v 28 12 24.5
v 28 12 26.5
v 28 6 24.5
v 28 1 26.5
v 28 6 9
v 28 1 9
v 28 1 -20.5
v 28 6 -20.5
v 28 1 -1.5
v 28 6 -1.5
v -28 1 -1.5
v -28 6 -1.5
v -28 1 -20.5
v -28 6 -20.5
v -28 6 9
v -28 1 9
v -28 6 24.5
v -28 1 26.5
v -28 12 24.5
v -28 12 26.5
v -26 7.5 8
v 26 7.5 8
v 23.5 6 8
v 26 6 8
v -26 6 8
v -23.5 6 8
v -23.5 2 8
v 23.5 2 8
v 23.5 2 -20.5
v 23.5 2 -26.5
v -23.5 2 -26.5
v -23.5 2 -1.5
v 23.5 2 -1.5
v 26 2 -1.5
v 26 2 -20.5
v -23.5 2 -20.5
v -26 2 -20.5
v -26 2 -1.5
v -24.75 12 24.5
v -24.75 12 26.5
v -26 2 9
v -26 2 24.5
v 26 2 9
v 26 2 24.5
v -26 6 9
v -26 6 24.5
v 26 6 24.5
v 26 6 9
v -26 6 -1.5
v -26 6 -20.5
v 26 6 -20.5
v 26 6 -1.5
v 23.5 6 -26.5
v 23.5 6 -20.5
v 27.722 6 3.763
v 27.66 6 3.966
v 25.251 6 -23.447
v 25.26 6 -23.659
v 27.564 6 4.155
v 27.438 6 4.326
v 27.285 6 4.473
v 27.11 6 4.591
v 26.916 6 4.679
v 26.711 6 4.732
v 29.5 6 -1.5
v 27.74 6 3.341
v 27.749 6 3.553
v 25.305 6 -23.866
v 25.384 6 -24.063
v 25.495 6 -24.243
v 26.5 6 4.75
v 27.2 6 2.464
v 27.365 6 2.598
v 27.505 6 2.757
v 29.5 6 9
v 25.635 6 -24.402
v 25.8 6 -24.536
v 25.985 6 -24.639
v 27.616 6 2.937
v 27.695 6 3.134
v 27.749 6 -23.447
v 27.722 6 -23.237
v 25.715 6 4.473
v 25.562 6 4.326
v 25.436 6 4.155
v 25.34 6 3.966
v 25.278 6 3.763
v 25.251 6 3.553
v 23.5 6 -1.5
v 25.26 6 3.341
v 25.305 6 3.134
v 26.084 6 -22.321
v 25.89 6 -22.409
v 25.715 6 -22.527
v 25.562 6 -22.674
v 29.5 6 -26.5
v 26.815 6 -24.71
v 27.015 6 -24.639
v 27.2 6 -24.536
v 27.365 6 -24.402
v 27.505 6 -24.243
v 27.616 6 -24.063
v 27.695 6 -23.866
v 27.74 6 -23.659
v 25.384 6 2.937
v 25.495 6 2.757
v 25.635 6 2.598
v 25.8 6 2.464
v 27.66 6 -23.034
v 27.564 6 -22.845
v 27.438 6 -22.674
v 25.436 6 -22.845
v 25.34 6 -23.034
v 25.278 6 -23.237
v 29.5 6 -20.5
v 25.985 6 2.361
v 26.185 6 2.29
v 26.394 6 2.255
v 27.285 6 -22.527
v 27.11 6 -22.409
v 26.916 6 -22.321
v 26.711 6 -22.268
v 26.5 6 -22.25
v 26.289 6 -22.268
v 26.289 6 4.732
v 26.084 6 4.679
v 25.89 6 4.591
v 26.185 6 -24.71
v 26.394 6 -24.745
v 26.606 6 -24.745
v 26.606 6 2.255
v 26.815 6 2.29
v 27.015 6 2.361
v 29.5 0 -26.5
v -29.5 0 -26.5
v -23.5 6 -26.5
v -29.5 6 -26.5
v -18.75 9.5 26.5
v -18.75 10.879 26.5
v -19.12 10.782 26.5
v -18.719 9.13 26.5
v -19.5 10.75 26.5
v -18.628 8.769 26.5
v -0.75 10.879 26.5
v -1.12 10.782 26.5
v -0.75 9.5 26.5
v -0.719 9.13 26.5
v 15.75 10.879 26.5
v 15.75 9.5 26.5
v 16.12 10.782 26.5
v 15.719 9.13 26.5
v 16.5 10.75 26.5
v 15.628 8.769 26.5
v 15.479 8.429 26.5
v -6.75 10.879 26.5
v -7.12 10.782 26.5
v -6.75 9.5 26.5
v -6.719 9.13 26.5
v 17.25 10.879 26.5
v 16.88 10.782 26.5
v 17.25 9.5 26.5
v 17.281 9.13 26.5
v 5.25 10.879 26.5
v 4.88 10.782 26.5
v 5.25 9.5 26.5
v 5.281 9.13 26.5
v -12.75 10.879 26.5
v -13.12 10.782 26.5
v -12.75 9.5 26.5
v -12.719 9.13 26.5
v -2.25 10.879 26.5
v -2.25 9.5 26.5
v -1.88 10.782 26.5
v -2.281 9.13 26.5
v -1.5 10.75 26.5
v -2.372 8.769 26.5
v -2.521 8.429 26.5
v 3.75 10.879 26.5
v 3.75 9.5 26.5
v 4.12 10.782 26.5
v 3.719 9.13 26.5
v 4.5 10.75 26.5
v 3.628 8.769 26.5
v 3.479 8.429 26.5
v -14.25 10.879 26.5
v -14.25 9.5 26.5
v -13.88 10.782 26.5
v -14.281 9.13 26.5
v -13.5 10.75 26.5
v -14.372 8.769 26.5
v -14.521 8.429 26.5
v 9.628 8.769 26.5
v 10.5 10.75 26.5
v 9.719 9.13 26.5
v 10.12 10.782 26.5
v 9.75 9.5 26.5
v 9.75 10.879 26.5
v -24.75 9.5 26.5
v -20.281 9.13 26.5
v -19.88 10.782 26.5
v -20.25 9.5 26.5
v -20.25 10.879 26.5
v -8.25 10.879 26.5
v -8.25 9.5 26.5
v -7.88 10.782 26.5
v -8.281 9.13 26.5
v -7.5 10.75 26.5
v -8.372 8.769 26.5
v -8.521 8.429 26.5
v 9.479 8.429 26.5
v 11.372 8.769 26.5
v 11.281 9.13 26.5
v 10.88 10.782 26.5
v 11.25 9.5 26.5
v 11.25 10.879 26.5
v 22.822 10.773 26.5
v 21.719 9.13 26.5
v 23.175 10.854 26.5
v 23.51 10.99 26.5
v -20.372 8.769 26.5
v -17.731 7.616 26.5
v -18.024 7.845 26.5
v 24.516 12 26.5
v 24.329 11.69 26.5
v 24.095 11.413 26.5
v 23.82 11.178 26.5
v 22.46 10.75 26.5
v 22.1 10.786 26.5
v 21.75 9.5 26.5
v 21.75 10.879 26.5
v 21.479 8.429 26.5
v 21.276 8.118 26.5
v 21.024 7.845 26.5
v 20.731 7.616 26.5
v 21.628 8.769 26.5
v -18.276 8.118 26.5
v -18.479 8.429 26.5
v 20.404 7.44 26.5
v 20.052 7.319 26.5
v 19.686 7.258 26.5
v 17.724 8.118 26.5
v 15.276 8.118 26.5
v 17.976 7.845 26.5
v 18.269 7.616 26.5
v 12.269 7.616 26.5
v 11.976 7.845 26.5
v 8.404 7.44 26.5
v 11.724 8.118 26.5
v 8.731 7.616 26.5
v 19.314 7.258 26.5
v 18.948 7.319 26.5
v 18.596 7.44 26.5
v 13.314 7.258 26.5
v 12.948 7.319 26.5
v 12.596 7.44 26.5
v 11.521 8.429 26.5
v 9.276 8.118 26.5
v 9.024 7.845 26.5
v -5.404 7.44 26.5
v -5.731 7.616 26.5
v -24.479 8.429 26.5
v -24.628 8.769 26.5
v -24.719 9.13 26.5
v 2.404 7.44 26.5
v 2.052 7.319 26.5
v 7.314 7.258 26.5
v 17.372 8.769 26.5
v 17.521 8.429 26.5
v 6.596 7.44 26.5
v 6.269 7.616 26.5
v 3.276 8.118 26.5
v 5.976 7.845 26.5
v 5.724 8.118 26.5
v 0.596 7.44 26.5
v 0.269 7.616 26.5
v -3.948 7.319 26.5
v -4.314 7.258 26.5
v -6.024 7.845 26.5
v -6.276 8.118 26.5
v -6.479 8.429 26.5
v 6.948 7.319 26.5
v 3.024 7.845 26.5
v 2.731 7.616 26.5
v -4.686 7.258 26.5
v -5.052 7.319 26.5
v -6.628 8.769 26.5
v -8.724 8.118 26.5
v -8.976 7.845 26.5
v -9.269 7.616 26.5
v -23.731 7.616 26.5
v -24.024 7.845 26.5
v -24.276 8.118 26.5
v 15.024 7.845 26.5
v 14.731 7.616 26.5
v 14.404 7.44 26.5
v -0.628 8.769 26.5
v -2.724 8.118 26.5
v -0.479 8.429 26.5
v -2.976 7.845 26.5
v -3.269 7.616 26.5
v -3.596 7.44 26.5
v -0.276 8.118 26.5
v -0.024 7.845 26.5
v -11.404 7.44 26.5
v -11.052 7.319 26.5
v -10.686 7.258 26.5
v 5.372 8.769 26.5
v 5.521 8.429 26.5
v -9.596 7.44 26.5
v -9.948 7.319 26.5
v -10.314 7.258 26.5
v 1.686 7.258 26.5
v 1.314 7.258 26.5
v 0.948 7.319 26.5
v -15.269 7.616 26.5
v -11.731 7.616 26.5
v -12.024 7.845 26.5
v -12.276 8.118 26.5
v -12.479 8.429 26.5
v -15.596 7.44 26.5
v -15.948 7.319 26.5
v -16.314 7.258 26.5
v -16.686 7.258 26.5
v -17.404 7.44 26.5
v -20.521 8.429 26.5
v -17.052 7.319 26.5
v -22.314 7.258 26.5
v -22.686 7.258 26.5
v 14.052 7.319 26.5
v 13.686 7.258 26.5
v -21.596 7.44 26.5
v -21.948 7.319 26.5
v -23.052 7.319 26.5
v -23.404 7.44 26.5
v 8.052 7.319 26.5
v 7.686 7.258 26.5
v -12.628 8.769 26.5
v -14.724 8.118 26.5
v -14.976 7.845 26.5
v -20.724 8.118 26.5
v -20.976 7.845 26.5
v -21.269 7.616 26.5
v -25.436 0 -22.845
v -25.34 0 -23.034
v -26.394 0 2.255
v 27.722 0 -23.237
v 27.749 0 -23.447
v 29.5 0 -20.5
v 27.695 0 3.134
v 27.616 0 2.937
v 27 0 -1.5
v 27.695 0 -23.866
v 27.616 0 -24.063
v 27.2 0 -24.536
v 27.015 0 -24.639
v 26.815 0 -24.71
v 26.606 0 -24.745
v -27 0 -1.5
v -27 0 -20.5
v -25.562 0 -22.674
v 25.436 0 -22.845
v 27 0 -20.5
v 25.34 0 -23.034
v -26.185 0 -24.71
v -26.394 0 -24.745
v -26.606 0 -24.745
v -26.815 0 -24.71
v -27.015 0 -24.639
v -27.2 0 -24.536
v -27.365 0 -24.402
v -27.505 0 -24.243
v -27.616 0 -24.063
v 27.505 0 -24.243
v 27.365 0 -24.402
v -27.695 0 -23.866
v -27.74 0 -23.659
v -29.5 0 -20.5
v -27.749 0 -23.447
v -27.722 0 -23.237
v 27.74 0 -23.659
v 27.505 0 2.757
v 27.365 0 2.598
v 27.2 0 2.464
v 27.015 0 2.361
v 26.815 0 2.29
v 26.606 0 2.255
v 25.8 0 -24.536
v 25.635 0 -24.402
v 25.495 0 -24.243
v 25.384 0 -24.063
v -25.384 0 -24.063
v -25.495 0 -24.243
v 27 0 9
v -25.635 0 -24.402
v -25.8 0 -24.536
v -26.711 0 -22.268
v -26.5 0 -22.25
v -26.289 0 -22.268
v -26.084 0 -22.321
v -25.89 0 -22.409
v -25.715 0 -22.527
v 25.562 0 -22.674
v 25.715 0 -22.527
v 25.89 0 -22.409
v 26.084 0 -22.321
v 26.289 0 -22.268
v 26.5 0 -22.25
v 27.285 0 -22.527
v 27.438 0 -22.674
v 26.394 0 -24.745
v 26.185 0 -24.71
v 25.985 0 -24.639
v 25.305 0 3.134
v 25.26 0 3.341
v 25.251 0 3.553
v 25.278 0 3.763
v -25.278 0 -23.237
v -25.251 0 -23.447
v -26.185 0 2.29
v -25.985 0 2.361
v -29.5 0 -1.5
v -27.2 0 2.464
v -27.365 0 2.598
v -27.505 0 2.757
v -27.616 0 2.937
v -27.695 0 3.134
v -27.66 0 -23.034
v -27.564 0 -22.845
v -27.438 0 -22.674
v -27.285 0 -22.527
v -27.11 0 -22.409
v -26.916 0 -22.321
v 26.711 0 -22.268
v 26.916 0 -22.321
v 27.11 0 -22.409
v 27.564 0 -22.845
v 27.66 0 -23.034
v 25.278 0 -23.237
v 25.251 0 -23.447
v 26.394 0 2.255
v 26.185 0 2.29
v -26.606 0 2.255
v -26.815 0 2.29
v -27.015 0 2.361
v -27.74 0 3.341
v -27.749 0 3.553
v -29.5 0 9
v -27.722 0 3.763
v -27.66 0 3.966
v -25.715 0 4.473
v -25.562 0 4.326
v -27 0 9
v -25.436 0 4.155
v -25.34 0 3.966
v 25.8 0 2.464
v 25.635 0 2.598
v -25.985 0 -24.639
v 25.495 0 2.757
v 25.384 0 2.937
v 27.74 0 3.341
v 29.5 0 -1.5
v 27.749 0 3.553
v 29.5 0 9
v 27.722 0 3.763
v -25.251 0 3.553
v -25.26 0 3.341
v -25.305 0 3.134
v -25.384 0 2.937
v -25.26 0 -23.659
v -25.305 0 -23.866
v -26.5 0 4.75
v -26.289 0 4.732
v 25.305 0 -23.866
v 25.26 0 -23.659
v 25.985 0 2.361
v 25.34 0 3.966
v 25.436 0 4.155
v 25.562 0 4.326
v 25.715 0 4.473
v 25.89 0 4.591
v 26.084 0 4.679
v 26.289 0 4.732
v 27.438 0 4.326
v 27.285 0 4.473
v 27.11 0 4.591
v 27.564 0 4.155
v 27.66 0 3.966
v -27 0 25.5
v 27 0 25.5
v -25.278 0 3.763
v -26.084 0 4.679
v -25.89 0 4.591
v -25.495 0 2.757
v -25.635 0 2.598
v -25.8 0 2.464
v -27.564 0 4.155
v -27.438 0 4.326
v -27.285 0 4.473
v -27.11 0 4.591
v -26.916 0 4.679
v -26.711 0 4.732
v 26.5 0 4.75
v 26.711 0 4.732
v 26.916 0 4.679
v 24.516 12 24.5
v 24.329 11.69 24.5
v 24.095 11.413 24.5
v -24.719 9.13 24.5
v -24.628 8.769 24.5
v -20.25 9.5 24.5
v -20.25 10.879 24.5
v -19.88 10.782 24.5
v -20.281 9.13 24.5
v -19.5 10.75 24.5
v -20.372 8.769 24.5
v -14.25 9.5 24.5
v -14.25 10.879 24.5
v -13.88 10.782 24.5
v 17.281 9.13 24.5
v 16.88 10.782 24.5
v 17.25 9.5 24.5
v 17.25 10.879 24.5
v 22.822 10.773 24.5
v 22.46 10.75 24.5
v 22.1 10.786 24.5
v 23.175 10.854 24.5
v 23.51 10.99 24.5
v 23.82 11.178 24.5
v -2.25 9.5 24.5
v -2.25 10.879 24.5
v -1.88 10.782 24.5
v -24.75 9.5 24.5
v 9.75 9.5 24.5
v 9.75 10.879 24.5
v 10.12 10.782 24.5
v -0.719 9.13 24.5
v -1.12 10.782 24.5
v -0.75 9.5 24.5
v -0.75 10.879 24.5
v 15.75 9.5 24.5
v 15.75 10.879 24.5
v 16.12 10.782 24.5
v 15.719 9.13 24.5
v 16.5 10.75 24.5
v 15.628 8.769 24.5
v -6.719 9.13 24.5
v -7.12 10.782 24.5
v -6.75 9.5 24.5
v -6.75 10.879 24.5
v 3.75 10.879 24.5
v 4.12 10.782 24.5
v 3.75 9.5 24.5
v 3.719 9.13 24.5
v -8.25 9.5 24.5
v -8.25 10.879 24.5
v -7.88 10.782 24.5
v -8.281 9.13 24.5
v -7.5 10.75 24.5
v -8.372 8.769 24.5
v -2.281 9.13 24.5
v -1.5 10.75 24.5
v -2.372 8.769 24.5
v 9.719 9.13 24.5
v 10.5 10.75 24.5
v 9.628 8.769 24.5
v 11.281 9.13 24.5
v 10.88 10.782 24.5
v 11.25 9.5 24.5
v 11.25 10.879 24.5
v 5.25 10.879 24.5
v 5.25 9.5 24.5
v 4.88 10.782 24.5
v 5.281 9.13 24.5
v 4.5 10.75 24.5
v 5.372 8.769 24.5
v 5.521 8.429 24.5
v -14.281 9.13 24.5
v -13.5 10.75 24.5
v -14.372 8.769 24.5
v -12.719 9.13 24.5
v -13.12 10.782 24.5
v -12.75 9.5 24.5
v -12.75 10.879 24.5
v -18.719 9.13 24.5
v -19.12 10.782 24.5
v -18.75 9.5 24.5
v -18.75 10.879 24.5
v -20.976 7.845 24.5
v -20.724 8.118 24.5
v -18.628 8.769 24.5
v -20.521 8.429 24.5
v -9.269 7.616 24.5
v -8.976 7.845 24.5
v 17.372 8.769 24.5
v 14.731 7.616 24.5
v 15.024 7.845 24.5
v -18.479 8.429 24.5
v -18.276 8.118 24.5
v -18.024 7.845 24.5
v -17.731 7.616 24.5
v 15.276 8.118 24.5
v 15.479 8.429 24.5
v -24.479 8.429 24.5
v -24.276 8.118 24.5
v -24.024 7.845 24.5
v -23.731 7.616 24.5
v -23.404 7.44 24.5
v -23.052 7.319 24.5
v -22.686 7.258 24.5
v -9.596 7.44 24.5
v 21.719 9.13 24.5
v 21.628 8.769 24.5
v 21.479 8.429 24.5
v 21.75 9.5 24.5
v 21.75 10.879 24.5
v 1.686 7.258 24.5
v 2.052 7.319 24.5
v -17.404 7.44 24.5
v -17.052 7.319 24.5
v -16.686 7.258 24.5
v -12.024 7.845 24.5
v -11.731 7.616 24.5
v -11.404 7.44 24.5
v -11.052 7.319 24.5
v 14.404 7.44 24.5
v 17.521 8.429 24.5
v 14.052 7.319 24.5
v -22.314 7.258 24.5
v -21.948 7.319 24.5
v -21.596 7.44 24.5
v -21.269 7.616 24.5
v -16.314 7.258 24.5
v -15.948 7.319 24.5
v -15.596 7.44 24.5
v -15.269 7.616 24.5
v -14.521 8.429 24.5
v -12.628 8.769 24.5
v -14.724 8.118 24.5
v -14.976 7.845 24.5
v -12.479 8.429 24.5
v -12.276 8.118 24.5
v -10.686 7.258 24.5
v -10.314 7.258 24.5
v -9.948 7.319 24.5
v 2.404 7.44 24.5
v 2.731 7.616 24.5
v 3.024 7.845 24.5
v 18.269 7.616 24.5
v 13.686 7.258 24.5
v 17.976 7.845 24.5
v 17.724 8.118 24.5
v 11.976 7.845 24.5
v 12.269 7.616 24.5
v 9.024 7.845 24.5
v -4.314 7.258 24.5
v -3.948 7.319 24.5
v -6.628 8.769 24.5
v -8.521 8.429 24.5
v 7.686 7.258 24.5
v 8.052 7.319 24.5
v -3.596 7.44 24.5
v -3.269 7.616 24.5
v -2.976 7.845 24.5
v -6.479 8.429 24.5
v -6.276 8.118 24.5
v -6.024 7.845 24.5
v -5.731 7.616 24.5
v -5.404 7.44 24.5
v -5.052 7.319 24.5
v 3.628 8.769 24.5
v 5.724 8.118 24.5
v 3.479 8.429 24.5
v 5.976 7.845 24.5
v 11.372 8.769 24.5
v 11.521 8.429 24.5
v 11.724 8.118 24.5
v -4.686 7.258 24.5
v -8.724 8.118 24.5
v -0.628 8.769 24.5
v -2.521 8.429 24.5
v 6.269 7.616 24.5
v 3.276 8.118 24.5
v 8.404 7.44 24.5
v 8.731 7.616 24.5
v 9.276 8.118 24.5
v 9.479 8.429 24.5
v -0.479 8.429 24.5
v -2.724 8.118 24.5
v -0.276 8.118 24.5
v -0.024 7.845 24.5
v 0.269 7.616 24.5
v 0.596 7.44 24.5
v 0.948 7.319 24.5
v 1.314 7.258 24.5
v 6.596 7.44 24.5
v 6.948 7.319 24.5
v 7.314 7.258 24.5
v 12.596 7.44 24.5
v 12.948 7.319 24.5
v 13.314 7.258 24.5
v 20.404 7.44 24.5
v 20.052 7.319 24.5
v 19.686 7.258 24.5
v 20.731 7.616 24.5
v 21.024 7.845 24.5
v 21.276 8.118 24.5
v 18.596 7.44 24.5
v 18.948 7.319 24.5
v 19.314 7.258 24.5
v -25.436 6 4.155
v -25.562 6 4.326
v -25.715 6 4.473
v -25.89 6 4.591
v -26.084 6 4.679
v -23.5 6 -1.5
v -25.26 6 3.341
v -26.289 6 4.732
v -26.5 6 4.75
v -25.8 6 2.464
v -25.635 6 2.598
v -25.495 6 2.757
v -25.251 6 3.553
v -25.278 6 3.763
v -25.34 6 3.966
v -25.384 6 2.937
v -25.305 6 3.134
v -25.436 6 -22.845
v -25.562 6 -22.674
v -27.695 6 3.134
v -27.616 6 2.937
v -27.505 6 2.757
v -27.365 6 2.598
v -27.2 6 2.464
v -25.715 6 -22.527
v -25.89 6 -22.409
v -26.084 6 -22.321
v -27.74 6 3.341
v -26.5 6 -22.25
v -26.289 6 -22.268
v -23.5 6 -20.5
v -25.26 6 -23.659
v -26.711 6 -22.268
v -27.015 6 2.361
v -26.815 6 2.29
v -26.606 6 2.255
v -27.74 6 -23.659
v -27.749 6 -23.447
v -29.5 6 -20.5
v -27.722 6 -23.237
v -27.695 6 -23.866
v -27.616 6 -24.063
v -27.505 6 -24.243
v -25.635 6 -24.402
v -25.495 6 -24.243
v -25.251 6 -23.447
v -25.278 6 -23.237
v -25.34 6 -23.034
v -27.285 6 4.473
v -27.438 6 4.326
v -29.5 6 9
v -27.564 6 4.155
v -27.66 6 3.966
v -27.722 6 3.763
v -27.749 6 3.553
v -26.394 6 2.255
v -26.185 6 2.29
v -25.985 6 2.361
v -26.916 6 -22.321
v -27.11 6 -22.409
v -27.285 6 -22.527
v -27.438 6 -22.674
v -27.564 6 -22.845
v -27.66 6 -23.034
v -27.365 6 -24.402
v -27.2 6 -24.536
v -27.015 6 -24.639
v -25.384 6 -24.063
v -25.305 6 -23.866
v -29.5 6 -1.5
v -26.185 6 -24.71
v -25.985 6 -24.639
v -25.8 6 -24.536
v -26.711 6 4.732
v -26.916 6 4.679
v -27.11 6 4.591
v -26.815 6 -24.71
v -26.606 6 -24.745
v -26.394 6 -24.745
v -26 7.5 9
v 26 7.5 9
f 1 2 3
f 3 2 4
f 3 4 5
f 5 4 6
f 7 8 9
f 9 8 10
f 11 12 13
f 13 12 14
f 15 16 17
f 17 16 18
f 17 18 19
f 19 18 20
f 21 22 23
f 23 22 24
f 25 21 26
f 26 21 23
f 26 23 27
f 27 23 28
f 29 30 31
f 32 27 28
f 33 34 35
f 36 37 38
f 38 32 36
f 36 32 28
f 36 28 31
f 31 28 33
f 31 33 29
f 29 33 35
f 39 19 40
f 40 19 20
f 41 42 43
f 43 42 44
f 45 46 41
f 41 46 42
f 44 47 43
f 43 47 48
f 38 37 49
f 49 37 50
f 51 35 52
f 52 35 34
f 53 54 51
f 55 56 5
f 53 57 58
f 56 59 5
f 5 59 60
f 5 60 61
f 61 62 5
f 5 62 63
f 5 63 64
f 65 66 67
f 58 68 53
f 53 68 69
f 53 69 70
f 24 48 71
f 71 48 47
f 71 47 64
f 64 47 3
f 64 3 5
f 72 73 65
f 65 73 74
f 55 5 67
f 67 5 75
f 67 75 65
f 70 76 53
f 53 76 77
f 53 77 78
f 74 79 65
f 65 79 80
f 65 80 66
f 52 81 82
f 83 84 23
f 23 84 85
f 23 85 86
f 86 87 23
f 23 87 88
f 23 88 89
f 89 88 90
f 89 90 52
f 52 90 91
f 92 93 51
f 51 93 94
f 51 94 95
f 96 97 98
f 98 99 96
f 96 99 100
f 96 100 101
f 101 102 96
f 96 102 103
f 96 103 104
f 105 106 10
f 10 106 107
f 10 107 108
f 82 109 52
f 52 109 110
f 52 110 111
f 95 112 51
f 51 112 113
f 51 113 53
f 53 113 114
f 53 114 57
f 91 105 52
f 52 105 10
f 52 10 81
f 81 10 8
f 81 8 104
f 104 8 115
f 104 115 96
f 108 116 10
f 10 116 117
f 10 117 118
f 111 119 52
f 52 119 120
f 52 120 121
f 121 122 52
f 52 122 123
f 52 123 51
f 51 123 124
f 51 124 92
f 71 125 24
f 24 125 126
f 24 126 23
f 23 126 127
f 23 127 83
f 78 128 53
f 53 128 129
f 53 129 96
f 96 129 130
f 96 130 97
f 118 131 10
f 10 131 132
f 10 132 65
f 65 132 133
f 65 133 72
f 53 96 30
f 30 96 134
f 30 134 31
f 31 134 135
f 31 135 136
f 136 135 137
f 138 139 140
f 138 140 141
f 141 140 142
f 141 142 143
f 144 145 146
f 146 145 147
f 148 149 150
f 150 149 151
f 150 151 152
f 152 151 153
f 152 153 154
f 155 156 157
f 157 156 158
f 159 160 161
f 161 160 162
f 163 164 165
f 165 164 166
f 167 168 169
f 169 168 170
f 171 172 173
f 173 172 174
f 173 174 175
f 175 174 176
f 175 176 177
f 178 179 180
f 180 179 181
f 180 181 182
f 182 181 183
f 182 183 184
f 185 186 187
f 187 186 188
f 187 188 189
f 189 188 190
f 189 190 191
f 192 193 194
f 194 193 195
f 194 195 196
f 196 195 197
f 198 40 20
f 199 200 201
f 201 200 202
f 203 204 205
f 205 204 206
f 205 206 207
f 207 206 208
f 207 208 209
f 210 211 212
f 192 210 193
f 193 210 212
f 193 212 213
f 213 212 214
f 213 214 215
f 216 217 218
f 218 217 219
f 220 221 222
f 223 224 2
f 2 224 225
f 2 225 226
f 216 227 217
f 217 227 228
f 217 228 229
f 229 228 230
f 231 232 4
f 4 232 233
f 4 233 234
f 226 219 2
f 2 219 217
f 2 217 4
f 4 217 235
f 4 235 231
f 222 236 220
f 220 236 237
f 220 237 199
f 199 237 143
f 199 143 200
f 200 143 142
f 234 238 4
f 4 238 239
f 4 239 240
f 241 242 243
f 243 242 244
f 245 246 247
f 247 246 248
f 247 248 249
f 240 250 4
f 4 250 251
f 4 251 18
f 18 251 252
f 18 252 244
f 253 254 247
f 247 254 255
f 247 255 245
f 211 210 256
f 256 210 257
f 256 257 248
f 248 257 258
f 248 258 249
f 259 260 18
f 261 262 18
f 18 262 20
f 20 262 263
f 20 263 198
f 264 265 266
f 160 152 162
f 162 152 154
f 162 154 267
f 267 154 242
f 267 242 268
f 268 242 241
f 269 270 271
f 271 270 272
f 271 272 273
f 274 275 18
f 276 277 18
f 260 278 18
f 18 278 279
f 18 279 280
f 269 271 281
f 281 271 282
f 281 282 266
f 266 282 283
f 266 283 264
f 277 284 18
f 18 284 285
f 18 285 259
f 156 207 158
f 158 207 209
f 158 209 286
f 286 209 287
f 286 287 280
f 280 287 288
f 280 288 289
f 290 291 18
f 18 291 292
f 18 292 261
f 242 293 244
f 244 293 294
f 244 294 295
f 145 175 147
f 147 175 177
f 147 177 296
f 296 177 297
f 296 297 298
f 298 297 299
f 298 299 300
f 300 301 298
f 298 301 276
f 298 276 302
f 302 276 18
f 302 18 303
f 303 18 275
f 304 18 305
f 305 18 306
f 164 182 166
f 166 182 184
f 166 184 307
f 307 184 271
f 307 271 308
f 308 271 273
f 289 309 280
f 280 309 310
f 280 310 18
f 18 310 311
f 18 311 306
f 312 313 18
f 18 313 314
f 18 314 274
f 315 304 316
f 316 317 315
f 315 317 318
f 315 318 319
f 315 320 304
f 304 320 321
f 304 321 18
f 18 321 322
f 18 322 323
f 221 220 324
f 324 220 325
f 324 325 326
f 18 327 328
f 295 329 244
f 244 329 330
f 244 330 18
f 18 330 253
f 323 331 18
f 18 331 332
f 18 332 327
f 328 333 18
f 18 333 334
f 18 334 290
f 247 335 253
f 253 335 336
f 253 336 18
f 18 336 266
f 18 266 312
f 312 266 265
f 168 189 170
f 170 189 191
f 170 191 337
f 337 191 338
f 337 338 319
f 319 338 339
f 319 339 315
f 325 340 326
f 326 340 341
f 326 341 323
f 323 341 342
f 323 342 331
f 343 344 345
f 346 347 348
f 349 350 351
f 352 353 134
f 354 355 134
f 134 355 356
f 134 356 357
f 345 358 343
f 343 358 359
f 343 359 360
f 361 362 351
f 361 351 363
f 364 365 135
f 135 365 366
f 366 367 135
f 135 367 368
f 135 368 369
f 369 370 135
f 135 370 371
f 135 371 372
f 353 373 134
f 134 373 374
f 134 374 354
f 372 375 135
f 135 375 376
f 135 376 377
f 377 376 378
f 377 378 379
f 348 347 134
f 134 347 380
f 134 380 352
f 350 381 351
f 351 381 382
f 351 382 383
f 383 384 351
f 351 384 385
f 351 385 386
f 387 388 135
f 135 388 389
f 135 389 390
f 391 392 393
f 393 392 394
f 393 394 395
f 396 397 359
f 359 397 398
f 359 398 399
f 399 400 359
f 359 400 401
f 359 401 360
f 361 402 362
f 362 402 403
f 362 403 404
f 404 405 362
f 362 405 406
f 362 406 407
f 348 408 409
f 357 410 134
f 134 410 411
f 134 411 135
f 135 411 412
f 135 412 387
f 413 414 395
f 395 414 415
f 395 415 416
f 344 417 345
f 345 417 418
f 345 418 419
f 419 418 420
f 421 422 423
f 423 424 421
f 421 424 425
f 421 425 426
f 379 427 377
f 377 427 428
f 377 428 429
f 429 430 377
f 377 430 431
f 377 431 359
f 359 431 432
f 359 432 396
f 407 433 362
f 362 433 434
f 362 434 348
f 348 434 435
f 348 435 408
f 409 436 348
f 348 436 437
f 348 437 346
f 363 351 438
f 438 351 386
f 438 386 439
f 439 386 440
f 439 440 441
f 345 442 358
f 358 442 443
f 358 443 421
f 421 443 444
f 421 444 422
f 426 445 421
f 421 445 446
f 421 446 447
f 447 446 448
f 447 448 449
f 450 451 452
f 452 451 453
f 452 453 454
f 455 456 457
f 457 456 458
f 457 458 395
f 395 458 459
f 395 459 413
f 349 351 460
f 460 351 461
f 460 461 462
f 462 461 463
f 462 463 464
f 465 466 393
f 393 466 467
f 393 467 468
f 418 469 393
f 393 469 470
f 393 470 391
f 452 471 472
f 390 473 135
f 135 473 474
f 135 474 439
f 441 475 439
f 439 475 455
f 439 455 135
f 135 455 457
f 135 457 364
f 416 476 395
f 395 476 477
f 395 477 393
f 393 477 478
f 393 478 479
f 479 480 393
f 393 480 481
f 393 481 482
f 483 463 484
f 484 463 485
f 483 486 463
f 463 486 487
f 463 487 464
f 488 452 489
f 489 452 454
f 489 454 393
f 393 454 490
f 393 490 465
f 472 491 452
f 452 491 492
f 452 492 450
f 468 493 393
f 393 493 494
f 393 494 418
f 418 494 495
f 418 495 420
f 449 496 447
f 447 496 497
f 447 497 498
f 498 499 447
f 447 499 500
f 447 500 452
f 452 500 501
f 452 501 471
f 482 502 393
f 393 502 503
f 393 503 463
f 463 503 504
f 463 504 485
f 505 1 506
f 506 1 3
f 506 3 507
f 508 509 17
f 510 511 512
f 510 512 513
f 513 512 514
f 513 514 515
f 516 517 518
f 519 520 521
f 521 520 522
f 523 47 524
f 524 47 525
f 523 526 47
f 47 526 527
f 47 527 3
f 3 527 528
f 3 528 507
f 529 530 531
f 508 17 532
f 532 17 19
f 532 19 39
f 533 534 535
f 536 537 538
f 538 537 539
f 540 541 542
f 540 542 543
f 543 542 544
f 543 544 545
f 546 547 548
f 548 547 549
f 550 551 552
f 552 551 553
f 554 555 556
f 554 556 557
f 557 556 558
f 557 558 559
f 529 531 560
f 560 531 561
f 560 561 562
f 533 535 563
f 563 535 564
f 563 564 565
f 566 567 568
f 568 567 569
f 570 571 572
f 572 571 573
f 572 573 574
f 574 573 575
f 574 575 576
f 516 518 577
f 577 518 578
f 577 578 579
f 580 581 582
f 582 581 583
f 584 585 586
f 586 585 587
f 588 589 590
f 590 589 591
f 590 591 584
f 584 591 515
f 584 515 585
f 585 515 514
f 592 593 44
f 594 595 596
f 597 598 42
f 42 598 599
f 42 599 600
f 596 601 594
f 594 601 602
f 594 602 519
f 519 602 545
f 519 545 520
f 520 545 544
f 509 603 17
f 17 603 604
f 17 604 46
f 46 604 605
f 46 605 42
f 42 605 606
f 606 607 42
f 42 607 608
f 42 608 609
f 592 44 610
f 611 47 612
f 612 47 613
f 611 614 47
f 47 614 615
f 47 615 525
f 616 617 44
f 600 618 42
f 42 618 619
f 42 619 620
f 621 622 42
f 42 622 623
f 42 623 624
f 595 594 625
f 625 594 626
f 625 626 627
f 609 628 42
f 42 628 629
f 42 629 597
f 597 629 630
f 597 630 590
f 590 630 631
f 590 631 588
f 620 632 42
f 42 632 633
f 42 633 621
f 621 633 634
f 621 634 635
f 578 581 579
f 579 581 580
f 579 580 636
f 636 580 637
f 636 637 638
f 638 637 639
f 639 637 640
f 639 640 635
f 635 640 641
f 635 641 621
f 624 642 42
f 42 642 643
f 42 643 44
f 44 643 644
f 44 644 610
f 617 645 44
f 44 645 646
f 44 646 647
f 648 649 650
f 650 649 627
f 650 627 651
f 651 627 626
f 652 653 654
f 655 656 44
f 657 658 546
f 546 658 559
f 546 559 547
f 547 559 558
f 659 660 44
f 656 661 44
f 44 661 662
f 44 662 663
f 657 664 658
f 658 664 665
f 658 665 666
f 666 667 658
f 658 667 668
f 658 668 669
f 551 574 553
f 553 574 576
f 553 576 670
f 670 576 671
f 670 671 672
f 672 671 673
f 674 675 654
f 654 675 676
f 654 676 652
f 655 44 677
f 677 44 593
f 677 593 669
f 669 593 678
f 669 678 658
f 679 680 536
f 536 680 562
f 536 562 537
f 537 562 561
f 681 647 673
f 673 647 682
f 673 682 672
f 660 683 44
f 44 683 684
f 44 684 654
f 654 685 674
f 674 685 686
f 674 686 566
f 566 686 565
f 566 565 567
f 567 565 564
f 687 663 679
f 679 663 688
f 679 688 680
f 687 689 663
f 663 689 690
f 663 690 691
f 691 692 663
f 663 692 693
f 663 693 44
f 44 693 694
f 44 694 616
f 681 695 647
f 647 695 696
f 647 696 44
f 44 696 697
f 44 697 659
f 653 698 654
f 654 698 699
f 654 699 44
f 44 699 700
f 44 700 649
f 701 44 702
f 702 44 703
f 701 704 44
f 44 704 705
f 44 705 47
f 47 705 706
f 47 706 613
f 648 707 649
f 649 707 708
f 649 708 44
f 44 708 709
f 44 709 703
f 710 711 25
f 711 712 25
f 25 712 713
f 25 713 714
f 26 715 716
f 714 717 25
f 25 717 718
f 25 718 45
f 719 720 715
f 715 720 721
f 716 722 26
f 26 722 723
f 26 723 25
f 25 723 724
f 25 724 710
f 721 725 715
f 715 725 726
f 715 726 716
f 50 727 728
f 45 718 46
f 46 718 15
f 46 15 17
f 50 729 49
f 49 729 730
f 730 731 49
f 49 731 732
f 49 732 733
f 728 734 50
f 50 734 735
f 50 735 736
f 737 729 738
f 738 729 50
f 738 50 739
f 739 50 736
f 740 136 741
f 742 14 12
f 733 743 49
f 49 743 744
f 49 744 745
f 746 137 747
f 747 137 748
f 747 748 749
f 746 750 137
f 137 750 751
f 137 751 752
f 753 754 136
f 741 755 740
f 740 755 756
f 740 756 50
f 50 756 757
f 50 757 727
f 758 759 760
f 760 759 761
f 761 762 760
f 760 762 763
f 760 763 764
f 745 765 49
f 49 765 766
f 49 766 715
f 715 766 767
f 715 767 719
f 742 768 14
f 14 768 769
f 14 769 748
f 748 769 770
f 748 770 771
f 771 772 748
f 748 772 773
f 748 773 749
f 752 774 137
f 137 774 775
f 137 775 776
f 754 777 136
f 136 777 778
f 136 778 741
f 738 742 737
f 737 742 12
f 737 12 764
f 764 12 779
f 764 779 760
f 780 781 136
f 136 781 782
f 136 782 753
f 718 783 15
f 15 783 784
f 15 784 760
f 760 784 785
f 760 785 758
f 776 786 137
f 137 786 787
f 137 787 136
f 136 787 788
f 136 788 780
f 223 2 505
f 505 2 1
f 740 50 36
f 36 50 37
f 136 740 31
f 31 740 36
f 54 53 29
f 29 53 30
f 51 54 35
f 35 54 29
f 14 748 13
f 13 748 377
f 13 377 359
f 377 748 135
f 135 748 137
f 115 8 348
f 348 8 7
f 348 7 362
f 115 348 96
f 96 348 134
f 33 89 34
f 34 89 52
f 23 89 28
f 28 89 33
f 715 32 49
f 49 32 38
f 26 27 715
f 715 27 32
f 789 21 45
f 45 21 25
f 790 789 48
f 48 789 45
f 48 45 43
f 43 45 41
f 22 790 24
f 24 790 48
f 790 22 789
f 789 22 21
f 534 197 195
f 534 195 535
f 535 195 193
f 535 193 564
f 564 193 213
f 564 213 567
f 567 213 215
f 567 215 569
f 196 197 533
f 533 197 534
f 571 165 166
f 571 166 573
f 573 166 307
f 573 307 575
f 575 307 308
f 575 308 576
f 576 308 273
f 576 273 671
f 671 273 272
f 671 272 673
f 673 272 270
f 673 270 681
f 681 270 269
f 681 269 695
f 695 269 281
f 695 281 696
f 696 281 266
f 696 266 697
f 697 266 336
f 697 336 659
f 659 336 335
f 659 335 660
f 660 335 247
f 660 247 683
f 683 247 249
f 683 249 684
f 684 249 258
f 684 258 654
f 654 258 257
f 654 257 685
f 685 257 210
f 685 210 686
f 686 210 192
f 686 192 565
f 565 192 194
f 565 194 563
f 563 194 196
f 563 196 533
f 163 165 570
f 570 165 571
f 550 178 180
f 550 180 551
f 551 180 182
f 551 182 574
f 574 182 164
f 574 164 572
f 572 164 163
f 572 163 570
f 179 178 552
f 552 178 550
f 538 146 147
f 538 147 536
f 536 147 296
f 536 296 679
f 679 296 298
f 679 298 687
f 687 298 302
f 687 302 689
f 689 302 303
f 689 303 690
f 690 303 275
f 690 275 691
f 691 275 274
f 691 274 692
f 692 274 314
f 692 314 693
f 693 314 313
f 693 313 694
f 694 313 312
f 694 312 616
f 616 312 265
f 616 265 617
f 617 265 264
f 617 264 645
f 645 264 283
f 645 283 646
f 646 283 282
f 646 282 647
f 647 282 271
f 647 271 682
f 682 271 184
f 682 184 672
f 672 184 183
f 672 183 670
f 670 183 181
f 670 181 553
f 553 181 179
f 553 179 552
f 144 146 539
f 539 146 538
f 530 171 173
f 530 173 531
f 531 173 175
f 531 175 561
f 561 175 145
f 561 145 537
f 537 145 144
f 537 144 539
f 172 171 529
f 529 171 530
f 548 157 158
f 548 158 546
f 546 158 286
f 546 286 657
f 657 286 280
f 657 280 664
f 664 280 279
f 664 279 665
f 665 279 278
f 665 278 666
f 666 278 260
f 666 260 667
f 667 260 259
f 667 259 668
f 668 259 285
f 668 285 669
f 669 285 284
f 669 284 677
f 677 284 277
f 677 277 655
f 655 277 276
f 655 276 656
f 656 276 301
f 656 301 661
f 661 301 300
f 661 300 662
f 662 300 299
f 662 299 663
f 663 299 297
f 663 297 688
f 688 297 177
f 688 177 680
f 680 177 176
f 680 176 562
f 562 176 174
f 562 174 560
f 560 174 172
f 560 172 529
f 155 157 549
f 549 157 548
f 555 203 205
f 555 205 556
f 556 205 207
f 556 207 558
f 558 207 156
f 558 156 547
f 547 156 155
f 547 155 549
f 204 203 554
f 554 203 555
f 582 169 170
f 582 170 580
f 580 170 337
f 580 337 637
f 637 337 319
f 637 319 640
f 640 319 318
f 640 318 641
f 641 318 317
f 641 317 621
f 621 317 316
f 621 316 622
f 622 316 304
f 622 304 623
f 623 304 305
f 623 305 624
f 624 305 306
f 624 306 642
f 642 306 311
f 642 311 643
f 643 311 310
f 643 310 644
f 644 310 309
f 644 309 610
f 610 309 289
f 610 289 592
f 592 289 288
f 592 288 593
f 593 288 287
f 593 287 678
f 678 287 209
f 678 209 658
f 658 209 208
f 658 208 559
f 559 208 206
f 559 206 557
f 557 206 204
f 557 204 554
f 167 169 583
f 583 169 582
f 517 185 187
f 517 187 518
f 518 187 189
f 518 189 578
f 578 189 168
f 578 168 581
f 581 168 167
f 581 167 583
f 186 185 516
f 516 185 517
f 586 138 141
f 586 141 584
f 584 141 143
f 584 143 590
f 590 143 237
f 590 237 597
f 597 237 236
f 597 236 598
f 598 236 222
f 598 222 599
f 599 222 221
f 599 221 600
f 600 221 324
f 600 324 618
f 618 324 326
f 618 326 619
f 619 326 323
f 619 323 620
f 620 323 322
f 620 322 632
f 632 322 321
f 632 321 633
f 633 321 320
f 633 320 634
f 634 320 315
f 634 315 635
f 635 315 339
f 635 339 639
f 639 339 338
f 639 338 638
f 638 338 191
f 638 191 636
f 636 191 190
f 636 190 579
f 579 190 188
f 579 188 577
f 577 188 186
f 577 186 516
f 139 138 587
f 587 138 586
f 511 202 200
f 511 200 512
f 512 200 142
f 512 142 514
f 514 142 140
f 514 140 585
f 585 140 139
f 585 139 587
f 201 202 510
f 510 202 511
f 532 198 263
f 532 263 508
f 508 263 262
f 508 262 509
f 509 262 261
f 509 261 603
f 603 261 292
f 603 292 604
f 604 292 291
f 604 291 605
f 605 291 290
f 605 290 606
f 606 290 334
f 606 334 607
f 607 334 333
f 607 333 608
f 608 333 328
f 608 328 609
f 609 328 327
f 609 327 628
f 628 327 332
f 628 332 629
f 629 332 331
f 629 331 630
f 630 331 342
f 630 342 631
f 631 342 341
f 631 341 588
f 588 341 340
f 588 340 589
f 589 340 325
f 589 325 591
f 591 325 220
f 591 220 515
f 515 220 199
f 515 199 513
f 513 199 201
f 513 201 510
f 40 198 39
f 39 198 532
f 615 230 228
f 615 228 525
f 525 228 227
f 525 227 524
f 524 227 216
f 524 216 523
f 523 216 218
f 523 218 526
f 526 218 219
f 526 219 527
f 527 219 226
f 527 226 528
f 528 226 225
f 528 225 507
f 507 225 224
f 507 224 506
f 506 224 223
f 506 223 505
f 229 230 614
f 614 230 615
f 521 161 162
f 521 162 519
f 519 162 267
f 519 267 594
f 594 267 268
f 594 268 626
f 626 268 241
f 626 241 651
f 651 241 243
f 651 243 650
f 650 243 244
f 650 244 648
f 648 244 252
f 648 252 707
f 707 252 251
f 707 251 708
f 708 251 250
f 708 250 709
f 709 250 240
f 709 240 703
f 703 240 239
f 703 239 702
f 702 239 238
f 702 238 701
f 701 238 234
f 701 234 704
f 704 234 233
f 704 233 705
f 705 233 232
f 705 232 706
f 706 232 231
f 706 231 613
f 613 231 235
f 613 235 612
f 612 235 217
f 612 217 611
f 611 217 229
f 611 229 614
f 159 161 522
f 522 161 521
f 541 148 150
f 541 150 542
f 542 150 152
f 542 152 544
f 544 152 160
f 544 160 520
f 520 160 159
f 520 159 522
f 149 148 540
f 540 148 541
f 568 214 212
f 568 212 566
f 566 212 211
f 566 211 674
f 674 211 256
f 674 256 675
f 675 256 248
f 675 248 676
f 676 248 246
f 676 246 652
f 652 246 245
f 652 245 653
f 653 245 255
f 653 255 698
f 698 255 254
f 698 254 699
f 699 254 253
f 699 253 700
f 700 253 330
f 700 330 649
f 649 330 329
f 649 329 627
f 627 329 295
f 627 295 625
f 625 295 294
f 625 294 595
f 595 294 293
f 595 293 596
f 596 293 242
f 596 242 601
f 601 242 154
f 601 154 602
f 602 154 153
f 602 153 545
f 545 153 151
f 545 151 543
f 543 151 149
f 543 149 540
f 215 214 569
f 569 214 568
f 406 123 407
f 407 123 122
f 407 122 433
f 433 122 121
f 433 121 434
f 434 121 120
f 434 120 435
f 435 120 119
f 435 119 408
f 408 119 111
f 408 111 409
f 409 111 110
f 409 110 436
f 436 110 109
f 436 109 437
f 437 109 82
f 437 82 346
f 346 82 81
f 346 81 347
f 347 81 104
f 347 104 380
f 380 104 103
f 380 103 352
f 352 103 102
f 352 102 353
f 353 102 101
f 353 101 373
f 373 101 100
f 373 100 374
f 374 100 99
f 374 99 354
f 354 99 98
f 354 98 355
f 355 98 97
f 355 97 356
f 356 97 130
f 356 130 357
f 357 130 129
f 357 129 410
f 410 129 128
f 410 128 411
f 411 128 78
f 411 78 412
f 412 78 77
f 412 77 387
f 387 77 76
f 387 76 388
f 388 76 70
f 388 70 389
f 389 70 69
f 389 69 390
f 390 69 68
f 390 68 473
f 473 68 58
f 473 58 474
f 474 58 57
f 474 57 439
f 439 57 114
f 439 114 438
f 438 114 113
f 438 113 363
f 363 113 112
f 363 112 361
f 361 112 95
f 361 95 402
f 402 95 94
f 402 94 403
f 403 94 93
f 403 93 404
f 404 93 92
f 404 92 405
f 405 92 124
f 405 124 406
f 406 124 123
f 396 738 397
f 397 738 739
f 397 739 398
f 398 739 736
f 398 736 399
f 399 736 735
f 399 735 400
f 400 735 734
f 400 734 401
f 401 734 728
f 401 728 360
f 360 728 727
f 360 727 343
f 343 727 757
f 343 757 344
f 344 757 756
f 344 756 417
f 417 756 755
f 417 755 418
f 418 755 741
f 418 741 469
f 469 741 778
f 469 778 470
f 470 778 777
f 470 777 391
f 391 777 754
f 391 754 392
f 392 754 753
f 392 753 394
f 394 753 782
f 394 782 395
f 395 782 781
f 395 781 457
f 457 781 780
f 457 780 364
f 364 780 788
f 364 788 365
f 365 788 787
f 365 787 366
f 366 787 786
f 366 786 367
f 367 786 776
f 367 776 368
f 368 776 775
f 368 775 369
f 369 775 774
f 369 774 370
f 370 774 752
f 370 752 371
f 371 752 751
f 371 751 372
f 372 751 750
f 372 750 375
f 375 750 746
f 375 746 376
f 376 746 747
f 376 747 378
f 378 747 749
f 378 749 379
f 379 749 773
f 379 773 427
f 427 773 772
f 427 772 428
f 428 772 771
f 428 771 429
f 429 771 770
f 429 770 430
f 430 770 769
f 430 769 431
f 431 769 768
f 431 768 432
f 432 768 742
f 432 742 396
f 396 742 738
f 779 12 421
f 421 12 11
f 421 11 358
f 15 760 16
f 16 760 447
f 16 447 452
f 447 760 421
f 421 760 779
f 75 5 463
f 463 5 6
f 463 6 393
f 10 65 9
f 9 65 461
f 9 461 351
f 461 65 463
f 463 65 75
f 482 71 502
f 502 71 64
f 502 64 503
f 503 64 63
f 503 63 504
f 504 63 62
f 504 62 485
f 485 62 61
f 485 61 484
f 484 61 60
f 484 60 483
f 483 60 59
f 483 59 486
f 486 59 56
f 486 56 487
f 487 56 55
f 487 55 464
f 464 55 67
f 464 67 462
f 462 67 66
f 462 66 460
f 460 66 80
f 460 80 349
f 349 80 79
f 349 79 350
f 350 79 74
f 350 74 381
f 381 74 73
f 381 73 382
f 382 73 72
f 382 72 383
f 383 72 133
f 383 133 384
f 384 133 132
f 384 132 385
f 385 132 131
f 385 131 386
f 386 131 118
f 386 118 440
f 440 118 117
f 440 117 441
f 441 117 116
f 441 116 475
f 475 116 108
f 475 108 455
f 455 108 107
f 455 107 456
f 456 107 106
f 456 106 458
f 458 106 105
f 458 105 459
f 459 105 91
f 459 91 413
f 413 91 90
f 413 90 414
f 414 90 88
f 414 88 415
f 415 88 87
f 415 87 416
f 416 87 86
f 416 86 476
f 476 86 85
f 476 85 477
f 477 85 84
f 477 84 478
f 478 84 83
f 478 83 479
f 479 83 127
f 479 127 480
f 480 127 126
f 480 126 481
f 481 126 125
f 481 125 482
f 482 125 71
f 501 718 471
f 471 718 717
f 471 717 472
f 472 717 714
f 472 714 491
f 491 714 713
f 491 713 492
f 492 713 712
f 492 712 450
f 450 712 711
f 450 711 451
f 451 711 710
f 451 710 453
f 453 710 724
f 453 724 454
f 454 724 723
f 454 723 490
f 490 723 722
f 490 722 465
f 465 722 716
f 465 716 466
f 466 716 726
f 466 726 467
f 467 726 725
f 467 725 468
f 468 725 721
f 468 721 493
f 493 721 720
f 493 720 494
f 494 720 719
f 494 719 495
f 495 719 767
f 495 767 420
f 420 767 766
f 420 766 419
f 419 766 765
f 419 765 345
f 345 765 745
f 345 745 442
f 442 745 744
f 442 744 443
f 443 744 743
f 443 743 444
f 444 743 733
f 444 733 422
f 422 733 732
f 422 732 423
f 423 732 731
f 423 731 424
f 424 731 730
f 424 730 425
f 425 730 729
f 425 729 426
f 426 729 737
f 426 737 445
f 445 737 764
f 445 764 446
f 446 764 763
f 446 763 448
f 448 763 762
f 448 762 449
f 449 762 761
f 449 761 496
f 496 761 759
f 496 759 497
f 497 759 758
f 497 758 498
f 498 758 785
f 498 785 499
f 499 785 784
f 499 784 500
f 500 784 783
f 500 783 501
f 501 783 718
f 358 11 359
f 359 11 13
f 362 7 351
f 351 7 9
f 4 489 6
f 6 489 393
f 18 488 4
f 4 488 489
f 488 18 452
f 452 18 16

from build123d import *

# Parameters (mm, degrees)
SKETCH1_W            = 56
SKETCH1_H            = 53
BOSS_EXTRUDE1_DEPTH  = 2
BOSS_EXTRUDE2_DEPTH  = 4
SKETCH3_W            = 56
SKETCH3_H            = 2
BOSS_EXTRUDE3_DEPTH  = 6
SKETCH4_W            = 2.5
SKETCH4_H            = 6
BOSS_EXTRUDE4_DEPTH  = 4
SKETCH5_W            = 2.5
SKETCH5_H            = 6
BOSS_EXTRUDE5_DEPTH  = 4
SKETCH6_W            = 6
SKETCH6_H            = 6
BOSS_EXTRUDE6_DEPTH  = 1.5
SKETCH7_W            = 6
SKETCH7_H            = 6
BOSS_EXTRUDE7_DEPTH  = 1.5
SKETCH8_W            = 2
SKETCH8_H            = 4
BOSS_EXTRUDE8_DEPTH  = 2.5
SKETCH9_W            = 2
SKETCH9_H            = 4
BOSS_EXTRUDE9_DEPTH  = 2.5
SKETCH10_W           = 52
SKETCH10_H           = 1
BOSS_EXTRUDE10_DEPTH = 5.5
CUT_EXTRUDE1_DEPTH   = 5.5
SKETCH12_R           = 1.25
CUT_EXTRUDE2_DEPTH   = 15.5
SKETCH13_R           = 1.25
CUT_EXTRUDE3_DEPTH   = 15.5
SKETCH14_W           = 8.5
SKETCH14_H           = 4
BOSS_EXTRUDE11_DEPTH = 2.5
SKETCH15_W           = 8.5
SKETCH15_H           = 4
BOSS_EXTRUDE12_DEPTH = 2.5
SKETCH16_W           = 10.5
SKETCH16_H           = 6
BOSS_EXTRUDE13_DEPTH = 1.5
SKETCH17_W           = 10.5
SKETCH17_H           = 6
BOSS_EXTRUDE14_DEPTH = 1.5
SKETCH18_R           = 1.25
CUT_EXTRUDE4_DEPTH   = 10
SKETCH19_R           = 1.25
CUT_EXTRUDE5_DEPTH   = 10
CHAMFER4_SIZE        = 1


with BuildPart() as part:
    # Sketch1 → Boss-Extrude1 (new body)
    with BuildSketch(Plane(origin=(0, 0, 0), x_dir=(1, 0, 0), z_dir=(0, 1, 0))):
        Rectangle(SKETCH1_W, SKETCH1_H)
    extrude(amount=BOSS_EXTRUDE1_DEPTH)

    # Sketch2 → Boss-Extrude2 (add)
    with BuildSketch(Plane(origin=(0, 2, 0), x_dir=(1, 0, 0), z_dir=(0, 1, 0))):
        Polygon((-26, 26.5), (-28, 26.5), (-28, -23), (-28, -26.5), (-26, -26.5), (26, -26.5), (28, -26.5), (28, -23), (28, 26.5), (26, 26.5), (26, -24.5), (-26, -24.5), align=None)
    extrude(amount=BOSS_EXTRUDE2_DEPTH)

    # Sketch3 → Boss-Extrude3 (add)
    with BuildSketch(Plane(origin=(0, 6, 0), x_dir=(1, 0, 0), z_dir=(0, 1, 0))):
        with Locations((0, -25.5)):
            Rectangle(SKETCH3_W, SKETCH3_H)
    extrude(amount=BOSS_EXTRUDE3_DEPTH)

    # Sketch4 → Boss-Extrude4 (add)
    with BuildSketch(Plane(origin=(0, 2, 0), x_dir=(1, 0, 0), z_dir=(0, 1, 0))):
        with Locations((-24.75, 23.5)):
            Rectangle(SKETCH4_W, SKETCH4_H)
    extrude(amount=BOSS_EXTRUDE4_DEPTH)

    # Sketch5 → Boss-Extrude5 (add)
    with BuildSketch(Plane(origin=(0, 2, 0), x_dir=(1, 0, 0), z_dir=(0, 1, 0))):
        with Locations((24.75, 23.5)):
            Rectangle(SKETCH5_W, SKETCH5_H)
    extrude(amount=BOSS_EXTRUDE5_DEPTH)

    # Sketch6 → Boss-Extrude6 (add)
    with BuildSketch(Plane.ZY.offset(28)):
        with Locations((-23.5, 3)):
            Rectangle(SKETCH6_W, SKETCH6_H)
    extrude(amount=BOSS_EXTRUDE6_DEPTH)

    # Sketch7 → Boss-Extrude7 (add)
    with BuildSketch(Plane(origin=(28, 0, 0), x_dir=(0, 0, -1), z_dir=(1, 0, 0))):
        with Locations((23.5, 3)):
            Rectangle(SKETCH7_W, SKETCH7_H)
    extrude(amount=BOSS_EXTRUDE7_DEPTH)

    # Sketch8 → Boss-Extrude8 (add)
    with BuildSketch(Plane.ZY.offset(-26)):
        with Locations((-0.5, 4)):
            Rectangle(SKETCH8_W, SKETCH8_H)
    extrude(amount=BOSS_EXTRUDE8_DEPTH)

    # Sketch9 → Boss-Extrude9 (add)
    with BuildSketch(Plane(origin=(-26, 0, 0), x_dir=(0, 0, -1), z_dir=(1, 0, 0))):
        with Locations((0.5, 4)):
            Rectangle(SKETCH9_W, SKETCH9_H)
    extrude(amount=BOSS_EXTRUDE9_DEPTH)

    # Sketch10 → Boss-Extrude10 (add)
    with BuildSketch(Plane(origin=(0, 2, 0), x_dir=(1, 0, 0), z_dir=(0, 1, 0))):
        with Locations((0, -8.5)):
            Rectangle(SKETCH10_W, SKETCH10_H)
    extrude(amount=BOSS_EXTRUDE10_DEPTH)

    # Sketch11 → Cut-Extrude1 (cut)
    with BuildSketch(Plane.XY.offset(26.5)):
        with BuildLine():
            Line((-24.75, 9.5), (-24.75, 12))
            Line((-24.75, 12), (24.75, 13))
            ThreePointArc((24.75, 13), (23.799038106, 11.162882693), (21.75, 10.878679656))
            Line((21.75, 10.878679656), (21.75, 9.5))
            ThreePointArc((21.75, 9.5), (19.5, 7.25), (17.25, 9.5))
            Line((17.25, 9.5), (17.25, 10.878679656))
            ThreePointArc((17.25, 10.878679656), (16.5, 10.75), (15.75, 10.878679656))
            Line((15.75, 10.878679656), (15.75, 9.5))
            ThreePointArc((15.75, 9.5), (13.5, 7.25), (11.25, 9.5))
            Line((11.25, 9.5), (11.25, 10.878679656))
            ThreePointArc((11.25, 10.878679656), (10.5, 10.75), (9.75, 10.878679656))
            Line((9.75, 10.878679656), (9.75, 9.5))
            ThreePointArc((9.75, 9.5), (7.5, 7.25), (5.25, 9.5))
            Line((5.25, 9.5), (5.25, 10.878679656))
            ThreePointArc((5.25, 10.878679656), (4.5, 10.75), (3.75, 10.878679656))
            Line((3.75, 10.878679656), (3.75, 9.5))
            ThreePointArc((3.75, 9.5), (1.5, 7.25), (-0.75, 9.5))
            Line((-0.75, 9.5), (-0.75, 10.878679656))
            ThreePointArc((-0.75, 10.878679656), (-1.5, 10.75), (-2.25, 10.878679656))
            Line((-2.25, 10.878679656), (-2.25, 9.5))
            ThreePointArc((-2.25, 9.5), (-4.5, 7.25), (-6.75, 9.5))
            Line((-6.75, 9.5), (-6.75, 10.878679656))
            ThreePointArc((-6.75, 10.878679656), (-7.5, 10.75), (-8.25, 10.878679656))
            Line((-8.25, 10.878679656), (-8.25, 9.5))
            ThreePointArc((-8.25, 9.5), (-10.5, 7.25), (-12.75, 9.5))
            Line((-12.75, 9.5), (-12.75, 10.878679656))
            ThreePointArc((-12.75, 10.878679656), (-13.5, 10.75), (-14.25, 10.878679656))
            Line((-14.25, 10.878679656), (-14.25, 9.5))
            ThreePointArc((-14.25, 9.5), (-16.5, 7.25), (-18.75, 9.5))
            Line((-18.75, 9.5), (-18.75, 10.878679656))
            ThreePointArc((-18.75, 10.878679656), (-19.5, 10.75), (-20.25, 10.878679656))
            Line((-20.25, 10.878679656), (-20.25, 9.5))
            ThreePointArc((-20.25, 9.5), (-22.5, 7.25), (-24.75, 9.5))
        make_face()
    extrude(amount=-CUT_EXTRUDE1_DEPTH, mode=Mode.SUBTRACT)

    # Sketch12 → Cut-Extrude2 (cut)
    with BuildSketch(Plane(origin=(0, 6, 0), x_dir=(1, 0, 0), z_dir=(0, 1, 0))):
        with Locations(Location((26.5, 23.5, 0), (0, 0, 270))):
            Circle(SKETCH12_R)
    extrude(amount=-CUT_EXTRUDE2_DEPTH, mode=Mode.SUBTRACT)

    # Sketch13 → Cut-Extrude3 (cut)
    with BuildSketch(Plane(origin=(0, 6, 0), x_dir=(1, 0, 0), z_dir=(0, 1, 0))):
        with Locations(Location((-26.5, 23.5, 0), (0, 0, 270))):
            Circle(SKETCH13_R)
    extrude(amount=-CUT_EXTRUDE3_DEPTH, mode=Mode.SUBTRACT)

    # Sketch14 → Boss-Extrude11 (add)
    with BuildSketch(Plane(origin=(-26, 0, 0), x_dir=(0, 0, -1), z_dir=(1, 0, 0))):
        with Locations((-4.75, 4)):
            Rectangle(SKETCH14_W, SKETCH14_H)
    extrude(amount=BOSS_EXTRUDE11_DEPTH)

    # Sketch15 → Boss-Extrude12 (add)
    with BuildSketch(Plane.ZY.offset(-26)):
        with Locations((4.75, 4)):
            Rectangle(SKETCH15_W, SKETCH15_H)
    extrude(amount=BOSS_EXTRUDE12_DEPTH)

    # Sketch16 → Boss-Extrude13 (add)
    with BuildSketch(Plane.ZY.offset(28)):
        with Locations((3.75, 3)):
            Rectangle(SKETCH16_W, SKETCH16_H)
    extrude(amount=BOSS_EXTRUDE13_DEPTH)

    # Sketch17 → Boss-Extrude14 (add)
    with BuildSketch(Plane(origin=(28, 0, 0), x_dir=(0, 0, -1), z_dir=(1, 0, 0))):
        with Locations((-3.75, 3)):
            Rectangle(SKETCH17_W, SKETCH17_H)
    extrude(amount=BOSS_EXTRUDE14_DEPTH)

    # Sketch18 → Cut-Extrude4 (cut)
    with BuildSketch(Plane(origin=(0, 6, 0), x_dir=(1, 0, 0), z_dir=(0, 1, 0))):
        with Locations(Location((26.5, -3.5, 0), (0, 0, 270))):
            Circle(SKETCH18_R)
    extrude(amount=-CUT_EXTRUDE4_DEPTH, mode=Mode.SUBTRACT)

    # Sketch19 → Cut-Extrude5 (cut)
    with BuildSketch(Plane(origin=(0, 6, 0), x_dir=(1, 0, 0), z_dir=(0, 1, 0))):
        with Locations(Location((-26.5, -3.5, 0), (0, 0, 270))):
            Circle(SKETCH19_R)
    extrude(amount=-CUT_EXTRUDE5_DEPTH, mode=Mode.SUBTRACT)

    # Chamfer4
    chamfer4_edges = [part.edges().sort_by_distance(p)[0] for p in [
        (-28, 0, 17.75),
        (28, 0, -11),
        (0, 0, 26.5),
        (28, 0, 17.75),
        (-28, 0, -11),
    ]]
    chamfer(chamfer4_edges, length=CHAMFER4_SIZE)


solid = part.part
